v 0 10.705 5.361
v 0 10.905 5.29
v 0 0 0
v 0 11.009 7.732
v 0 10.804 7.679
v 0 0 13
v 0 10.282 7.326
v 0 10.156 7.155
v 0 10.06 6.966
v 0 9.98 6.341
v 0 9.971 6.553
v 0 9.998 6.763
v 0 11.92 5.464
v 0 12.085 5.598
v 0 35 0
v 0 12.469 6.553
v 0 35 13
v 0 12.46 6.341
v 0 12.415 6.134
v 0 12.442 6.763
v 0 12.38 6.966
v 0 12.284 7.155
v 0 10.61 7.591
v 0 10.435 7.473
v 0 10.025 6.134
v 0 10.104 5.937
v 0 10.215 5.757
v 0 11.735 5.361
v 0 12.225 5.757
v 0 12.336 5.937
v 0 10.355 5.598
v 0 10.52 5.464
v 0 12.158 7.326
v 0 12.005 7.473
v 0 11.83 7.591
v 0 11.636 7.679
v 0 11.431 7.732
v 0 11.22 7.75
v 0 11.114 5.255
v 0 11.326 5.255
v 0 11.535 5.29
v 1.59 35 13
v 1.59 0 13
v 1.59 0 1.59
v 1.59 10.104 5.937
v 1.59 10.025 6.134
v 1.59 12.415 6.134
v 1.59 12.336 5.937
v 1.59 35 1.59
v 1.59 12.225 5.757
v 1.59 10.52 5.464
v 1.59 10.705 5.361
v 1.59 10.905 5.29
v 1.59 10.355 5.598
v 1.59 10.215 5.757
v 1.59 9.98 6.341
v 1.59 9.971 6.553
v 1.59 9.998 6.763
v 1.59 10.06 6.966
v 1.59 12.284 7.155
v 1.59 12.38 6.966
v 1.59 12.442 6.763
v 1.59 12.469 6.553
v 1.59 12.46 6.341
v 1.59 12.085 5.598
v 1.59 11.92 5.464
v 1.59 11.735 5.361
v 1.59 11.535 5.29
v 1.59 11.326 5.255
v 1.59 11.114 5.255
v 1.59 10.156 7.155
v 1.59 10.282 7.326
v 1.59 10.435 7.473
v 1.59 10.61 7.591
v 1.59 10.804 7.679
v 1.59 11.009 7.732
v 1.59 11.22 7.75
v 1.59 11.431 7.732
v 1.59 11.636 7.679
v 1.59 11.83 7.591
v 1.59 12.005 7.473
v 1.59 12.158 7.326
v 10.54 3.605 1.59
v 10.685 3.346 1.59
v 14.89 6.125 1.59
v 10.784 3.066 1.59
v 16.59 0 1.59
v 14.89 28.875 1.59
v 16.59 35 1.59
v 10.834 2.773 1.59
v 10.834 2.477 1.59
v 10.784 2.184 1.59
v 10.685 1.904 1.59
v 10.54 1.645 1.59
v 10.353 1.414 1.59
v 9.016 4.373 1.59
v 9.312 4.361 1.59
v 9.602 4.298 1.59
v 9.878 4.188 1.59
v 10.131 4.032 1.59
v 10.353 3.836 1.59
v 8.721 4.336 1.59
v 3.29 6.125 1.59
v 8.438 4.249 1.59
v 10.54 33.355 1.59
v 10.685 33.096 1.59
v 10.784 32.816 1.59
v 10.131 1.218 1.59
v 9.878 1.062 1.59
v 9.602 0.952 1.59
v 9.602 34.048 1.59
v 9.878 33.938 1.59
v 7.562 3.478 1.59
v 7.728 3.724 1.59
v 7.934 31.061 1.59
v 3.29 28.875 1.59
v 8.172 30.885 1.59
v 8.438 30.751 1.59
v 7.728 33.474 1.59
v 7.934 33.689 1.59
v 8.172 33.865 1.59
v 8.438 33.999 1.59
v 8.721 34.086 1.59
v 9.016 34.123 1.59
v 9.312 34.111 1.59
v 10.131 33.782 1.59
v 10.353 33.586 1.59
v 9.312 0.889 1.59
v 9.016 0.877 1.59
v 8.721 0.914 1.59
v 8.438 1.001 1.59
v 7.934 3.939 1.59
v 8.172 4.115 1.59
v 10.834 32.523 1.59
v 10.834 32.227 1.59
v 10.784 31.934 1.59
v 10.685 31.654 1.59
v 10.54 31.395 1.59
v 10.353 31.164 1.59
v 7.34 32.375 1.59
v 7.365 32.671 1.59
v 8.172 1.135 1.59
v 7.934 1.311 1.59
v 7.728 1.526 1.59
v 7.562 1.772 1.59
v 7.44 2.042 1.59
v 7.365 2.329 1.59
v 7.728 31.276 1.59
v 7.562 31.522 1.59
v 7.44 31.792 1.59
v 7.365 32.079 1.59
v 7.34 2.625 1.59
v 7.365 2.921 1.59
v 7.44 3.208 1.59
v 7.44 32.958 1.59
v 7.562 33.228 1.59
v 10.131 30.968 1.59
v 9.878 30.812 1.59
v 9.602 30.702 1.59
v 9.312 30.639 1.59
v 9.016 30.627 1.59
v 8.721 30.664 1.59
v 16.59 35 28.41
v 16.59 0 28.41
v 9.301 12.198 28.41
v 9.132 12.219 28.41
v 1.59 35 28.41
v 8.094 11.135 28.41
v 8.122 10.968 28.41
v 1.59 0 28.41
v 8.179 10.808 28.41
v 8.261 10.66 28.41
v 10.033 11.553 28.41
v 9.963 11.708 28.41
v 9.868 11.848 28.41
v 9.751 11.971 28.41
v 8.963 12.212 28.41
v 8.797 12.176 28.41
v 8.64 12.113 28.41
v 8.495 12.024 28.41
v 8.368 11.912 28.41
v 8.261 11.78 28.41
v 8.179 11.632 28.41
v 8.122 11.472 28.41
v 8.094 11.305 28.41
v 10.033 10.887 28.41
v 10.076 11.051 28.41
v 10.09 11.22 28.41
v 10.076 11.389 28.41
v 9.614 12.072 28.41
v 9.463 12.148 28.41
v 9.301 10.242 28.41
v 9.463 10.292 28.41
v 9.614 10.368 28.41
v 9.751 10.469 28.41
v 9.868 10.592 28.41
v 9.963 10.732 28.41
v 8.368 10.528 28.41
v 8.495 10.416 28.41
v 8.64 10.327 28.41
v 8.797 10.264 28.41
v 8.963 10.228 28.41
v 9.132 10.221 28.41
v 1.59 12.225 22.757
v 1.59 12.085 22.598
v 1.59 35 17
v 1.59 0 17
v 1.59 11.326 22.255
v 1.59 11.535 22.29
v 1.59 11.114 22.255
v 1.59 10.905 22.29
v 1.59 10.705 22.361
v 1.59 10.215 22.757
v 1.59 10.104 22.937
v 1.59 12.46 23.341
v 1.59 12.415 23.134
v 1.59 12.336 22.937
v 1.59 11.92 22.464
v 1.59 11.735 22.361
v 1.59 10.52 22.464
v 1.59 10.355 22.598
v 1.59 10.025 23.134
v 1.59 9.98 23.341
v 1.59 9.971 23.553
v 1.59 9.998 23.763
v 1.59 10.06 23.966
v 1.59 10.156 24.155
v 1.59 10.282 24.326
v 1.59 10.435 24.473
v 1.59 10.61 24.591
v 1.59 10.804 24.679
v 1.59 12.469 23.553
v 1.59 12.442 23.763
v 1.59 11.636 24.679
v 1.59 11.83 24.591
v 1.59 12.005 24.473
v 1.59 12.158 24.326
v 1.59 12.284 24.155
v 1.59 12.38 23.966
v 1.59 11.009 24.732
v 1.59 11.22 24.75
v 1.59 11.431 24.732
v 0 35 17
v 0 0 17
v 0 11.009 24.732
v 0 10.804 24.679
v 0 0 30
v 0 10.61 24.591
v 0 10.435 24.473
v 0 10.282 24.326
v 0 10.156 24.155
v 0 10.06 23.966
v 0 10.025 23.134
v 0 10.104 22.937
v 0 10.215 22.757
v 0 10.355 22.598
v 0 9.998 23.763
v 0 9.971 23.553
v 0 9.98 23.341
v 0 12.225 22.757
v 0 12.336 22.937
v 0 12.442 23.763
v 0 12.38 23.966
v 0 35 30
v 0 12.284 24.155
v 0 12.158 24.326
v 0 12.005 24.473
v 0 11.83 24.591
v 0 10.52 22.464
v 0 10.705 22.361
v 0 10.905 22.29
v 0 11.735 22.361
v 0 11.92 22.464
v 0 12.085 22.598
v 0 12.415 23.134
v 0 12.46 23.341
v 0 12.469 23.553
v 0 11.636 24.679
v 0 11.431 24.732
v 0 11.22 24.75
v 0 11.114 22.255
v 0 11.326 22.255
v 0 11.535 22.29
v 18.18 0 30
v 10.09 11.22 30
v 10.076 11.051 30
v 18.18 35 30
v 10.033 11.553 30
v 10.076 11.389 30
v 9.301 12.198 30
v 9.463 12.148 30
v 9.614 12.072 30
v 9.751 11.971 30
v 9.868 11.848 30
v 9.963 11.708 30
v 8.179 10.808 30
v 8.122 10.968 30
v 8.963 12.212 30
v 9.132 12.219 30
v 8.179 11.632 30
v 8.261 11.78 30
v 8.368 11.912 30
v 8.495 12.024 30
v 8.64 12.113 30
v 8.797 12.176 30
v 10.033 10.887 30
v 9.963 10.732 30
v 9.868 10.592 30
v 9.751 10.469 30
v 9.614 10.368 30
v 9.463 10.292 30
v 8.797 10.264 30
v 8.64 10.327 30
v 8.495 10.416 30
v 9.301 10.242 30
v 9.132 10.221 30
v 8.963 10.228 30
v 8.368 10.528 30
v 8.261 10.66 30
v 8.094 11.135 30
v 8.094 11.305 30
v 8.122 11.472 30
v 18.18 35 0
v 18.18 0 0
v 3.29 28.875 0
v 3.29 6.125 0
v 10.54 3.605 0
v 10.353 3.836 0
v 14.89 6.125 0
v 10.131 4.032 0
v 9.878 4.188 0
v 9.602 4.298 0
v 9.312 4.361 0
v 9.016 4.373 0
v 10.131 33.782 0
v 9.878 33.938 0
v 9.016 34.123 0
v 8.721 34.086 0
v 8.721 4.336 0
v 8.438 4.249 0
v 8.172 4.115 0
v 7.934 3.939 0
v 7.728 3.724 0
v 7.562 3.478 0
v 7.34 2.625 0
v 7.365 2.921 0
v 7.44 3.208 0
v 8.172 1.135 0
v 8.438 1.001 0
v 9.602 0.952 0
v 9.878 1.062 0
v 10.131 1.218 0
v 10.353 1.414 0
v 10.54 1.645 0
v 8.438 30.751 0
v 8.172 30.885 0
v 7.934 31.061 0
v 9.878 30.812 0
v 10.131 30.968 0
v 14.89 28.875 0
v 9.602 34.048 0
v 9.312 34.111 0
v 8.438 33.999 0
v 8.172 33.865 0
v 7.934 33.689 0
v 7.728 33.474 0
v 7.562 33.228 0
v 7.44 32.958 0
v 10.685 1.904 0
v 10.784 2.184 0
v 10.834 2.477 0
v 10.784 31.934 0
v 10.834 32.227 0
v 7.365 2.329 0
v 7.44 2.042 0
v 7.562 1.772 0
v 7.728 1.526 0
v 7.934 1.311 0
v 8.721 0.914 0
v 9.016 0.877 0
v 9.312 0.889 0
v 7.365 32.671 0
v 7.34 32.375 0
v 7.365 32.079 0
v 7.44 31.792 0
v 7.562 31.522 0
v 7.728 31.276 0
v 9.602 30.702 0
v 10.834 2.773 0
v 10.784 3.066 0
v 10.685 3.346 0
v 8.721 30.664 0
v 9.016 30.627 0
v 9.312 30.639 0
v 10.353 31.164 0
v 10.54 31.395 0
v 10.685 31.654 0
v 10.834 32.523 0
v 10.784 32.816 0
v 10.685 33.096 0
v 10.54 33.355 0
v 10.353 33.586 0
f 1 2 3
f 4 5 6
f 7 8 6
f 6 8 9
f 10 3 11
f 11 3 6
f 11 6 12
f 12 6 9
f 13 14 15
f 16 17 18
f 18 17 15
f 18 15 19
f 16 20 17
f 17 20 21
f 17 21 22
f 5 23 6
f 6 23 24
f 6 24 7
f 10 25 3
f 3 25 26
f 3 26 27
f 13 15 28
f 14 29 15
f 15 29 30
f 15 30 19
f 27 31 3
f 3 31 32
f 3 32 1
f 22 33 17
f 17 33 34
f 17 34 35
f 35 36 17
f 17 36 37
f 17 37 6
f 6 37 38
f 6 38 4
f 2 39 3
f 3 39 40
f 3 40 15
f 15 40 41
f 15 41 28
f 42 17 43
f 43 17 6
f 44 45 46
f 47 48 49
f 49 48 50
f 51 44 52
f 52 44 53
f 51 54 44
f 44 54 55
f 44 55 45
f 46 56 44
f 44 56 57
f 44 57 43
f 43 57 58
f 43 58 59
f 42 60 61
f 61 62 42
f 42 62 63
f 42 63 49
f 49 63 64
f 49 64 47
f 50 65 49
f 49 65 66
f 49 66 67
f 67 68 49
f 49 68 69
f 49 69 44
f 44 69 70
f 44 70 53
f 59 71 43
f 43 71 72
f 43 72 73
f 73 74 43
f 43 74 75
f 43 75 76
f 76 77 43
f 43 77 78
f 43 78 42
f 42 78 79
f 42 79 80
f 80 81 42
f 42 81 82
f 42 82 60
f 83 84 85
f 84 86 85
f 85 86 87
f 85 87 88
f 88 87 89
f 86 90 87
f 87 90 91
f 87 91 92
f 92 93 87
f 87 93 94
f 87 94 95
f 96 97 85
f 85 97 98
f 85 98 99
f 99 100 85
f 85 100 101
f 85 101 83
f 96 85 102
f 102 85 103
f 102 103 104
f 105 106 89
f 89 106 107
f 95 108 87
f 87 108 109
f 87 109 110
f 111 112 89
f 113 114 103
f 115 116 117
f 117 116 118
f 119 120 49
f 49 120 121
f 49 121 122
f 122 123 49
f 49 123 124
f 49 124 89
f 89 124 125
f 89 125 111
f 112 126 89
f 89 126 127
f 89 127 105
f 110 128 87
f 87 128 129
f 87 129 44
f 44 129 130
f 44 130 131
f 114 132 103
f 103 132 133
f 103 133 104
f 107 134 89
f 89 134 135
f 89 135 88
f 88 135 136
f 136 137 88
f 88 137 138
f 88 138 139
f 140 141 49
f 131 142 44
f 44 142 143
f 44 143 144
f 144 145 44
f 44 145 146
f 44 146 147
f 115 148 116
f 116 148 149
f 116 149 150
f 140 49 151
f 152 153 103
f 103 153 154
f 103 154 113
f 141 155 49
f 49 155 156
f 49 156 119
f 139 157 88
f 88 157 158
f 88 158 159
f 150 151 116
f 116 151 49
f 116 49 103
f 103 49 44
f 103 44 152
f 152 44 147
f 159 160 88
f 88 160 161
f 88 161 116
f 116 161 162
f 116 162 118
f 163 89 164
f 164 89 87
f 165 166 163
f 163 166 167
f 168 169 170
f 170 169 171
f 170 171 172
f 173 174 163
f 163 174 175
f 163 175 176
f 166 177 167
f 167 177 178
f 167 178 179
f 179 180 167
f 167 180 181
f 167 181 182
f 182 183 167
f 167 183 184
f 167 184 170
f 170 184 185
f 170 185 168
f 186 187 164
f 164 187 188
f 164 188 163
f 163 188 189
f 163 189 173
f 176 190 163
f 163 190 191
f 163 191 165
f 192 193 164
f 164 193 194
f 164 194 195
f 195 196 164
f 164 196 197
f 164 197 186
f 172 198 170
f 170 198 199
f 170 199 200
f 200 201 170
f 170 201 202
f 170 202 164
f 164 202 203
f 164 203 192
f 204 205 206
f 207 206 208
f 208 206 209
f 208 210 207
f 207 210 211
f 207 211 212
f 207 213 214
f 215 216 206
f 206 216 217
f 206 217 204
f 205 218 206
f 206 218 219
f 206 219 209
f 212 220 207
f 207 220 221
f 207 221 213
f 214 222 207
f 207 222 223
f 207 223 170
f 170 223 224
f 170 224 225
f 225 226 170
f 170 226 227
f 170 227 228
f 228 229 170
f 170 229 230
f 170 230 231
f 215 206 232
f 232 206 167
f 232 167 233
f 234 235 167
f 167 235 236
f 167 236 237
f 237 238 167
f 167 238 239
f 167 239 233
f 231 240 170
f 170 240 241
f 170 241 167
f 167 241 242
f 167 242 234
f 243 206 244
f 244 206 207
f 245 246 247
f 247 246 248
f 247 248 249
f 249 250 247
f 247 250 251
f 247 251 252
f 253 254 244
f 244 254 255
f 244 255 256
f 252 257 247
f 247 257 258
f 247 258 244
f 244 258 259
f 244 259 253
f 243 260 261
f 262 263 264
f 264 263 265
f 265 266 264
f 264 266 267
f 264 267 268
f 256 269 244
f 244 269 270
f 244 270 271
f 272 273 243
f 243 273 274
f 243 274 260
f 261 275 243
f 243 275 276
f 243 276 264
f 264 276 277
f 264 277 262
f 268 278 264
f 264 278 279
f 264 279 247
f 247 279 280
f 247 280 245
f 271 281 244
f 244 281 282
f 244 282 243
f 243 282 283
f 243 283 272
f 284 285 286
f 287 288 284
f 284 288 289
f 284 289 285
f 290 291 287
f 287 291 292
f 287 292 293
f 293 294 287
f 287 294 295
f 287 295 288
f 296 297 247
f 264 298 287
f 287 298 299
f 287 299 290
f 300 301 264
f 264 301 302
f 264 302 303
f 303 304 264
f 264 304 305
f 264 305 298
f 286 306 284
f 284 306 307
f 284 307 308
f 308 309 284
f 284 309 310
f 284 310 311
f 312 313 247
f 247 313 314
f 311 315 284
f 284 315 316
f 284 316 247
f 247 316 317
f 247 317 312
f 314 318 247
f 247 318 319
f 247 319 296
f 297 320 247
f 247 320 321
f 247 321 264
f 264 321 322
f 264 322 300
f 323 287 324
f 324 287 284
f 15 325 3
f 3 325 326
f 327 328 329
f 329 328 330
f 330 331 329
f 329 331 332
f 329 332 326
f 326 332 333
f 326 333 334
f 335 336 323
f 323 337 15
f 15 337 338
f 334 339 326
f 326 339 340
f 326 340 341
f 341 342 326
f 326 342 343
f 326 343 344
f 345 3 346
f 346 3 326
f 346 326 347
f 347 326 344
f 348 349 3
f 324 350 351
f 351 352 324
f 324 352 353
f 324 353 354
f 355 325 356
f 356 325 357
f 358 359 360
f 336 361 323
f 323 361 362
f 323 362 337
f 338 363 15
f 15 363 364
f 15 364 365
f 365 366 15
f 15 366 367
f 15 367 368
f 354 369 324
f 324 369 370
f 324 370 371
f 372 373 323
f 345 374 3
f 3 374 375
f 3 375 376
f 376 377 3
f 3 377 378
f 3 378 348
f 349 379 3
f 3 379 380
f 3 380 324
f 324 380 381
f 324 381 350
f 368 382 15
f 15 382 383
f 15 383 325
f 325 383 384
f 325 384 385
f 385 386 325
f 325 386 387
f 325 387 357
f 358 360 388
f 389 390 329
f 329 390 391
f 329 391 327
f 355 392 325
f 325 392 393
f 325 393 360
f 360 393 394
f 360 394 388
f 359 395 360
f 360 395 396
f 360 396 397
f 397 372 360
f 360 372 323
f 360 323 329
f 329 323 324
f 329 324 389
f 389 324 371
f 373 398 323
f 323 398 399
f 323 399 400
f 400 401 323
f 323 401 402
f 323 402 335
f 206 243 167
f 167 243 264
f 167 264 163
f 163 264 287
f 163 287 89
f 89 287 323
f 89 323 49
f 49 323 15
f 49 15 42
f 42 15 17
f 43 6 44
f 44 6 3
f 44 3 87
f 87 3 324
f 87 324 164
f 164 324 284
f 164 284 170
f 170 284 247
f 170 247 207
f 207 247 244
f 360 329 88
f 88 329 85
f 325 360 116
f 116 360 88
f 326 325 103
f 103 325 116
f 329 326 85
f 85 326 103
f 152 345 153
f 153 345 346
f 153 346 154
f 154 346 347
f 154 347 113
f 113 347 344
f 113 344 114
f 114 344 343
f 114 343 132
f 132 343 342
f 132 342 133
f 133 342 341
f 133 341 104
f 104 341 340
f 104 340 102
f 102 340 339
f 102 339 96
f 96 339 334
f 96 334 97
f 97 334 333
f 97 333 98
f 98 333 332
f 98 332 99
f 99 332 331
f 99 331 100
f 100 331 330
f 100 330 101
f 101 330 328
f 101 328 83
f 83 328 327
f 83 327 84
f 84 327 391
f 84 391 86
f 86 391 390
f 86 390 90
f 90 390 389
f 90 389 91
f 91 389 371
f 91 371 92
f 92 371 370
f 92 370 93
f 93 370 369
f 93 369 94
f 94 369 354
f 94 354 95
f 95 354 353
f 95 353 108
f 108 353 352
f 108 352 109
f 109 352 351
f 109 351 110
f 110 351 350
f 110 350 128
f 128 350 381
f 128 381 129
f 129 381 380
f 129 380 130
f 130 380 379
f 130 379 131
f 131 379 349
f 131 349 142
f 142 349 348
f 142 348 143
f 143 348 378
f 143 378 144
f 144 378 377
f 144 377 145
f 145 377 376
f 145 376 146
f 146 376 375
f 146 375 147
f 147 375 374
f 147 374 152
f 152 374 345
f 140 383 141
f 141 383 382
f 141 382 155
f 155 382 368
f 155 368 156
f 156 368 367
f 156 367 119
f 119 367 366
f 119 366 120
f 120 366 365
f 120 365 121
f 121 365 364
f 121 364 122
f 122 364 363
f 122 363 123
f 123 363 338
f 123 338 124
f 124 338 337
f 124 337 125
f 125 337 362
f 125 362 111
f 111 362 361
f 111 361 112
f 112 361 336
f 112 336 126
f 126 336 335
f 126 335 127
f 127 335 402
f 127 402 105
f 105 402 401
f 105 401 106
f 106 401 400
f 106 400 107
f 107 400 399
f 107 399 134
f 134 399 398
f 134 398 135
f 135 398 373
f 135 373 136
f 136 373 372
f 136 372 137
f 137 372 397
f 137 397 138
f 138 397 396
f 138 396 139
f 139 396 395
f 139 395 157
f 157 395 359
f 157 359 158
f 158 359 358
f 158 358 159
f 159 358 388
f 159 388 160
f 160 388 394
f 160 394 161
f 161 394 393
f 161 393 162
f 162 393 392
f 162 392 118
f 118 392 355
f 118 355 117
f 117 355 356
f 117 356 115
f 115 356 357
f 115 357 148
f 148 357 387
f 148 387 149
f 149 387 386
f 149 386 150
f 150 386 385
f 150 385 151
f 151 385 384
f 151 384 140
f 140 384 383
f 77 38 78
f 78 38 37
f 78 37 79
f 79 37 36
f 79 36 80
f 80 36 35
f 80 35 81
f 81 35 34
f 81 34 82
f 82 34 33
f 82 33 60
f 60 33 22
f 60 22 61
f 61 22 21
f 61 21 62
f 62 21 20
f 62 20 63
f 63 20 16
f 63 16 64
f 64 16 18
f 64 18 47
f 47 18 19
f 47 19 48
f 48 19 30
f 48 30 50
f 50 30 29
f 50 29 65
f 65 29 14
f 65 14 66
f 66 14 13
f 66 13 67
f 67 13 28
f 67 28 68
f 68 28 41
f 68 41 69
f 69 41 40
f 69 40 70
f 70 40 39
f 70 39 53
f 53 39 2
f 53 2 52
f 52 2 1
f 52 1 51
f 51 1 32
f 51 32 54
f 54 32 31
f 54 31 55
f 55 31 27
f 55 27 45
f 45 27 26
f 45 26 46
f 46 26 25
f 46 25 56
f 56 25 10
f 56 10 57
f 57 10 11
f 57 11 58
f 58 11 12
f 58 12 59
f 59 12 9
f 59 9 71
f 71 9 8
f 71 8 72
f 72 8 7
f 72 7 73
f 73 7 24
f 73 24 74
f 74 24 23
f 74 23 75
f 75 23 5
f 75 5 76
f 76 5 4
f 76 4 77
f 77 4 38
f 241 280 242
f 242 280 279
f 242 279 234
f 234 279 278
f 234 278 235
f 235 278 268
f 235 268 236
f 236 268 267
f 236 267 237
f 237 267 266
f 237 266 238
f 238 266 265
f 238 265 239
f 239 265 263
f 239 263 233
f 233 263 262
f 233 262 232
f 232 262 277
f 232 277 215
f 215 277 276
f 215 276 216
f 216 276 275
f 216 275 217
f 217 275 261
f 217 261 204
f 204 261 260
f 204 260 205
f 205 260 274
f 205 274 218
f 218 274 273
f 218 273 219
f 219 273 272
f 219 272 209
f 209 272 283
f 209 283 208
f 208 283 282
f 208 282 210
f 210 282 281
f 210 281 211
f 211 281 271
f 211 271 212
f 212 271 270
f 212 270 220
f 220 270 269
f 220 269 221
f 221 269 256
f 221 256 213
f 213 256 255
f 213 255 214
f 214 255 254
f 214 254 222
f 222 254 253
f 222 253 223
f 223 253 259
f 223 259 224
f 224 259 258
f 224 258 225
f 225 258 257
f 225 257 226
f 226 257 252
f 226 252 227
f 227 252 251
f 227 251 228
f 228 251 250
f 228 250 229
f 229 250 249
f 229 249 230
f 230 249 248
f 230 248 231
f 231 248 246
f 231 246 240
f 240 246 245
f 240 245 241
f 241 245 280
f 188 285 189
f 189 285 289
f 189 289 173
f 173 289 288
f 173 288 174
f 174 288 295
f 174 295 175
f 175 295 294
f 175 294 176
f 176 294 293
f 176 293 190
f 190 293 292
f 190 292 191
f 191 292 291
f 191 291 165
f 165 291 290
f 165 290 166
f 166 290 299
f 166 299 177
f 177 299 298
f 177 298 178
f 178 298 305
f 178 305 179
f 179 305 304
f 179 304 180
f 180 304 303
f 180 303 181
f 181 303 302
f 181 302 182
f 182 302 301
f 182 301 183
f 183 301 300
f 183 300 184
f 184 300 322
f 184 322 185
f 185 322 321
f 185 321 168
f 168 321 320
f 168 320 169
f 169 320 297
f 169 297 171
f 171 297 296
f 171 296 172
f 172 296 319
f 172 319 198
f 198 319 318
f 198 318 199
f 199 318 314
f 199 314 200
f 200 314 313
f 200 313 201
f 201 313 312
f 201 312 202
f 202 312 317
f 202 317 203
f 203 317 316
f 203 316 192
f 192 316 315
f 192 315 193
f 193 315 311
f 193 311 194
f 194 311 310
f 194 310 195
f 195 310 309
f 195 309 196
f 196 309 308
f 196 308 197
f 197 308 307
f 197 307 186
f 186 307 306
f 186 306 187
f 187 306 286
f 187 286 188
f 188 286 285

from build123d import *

# Parameters (mm, degrees)
BOSS_EXTRUDE1_DEPTH = 35
SKETCH2_R           = 1.75
SKETCH2_W           = 11.6
SKETCH2_H           = 22.75
CUT_EXTRUDE1_DEPTH  = 1.59
SKETCH4_R           = 1.25
CUT_EXTRUDE3_DEPTH  = 4
SKETCH5_R           = 1
CUT_EXTRUDE4_DEPTH  = 4


with BuildPart() as part:
    # Sketch1 → Boss-Extrude1 (new body)
    with BuildSketch(Plane(origin=(0, 0, 0), x_dir=(1, 0, 0), z_dir=(0, 1, 0))):
        Polygon((0, -13), (1.59, -13), (1.59, -1.59), (16.59, -1.59), (16.59, -28.41), (1.59, -28.41), (1.59, -17), (0, -17), (0, -30), (18.18, -30), (18.18, 0), (0, 0), align=None)
    extrude(amount=BOSS_EXTRUDE1_DEPTH)

    # Sketch2 → Cut-Extrude1 (cut)
    with BuildSketch(Plane(origin=(0, 0, 0), x_dir=(-1, 0, 0), z_dir=(0, 0, -1))):
        with Locations((-9.09, 32.375)):
            Circle(SKETCH2_R)
        with Locations((-9.09, 2.625)):
            Circle(SKETCH2_R)
        with Locations((-9.09, 17.5)):
            Rectangle(SKETCH2_W, SKETCH2_H)
    extrude(amount=-CUT_EXTRUDE1_DEPTH, mode=Mode.SUBTRACT)

    # Sketch4 → Cut-Extrude3 (cut)
    with BuildSketch(Plane.ZY):
        with Locations((6.5, 11.22)):
            Circle(SKETCH4_R)
        with Locations((23.5, 11.22)):
            Circle(SKETCH4_R)
    extrude(amount=-CUT_EXTRUDE3_DEPTH, mode=Mode.SUBTRACT)

    # Sketch5 → Cut-Extrude4 (cut)
    with BuildSketch(Plane.XY.offset(30)):
        with Locations((9.09, 11.22)):
            Circle(SKETCH5_R)
    extrude(amount=-CUT_EXTRUDE4_DEPTH, mode=Mode.SUBTRACT)


solid = part.part
